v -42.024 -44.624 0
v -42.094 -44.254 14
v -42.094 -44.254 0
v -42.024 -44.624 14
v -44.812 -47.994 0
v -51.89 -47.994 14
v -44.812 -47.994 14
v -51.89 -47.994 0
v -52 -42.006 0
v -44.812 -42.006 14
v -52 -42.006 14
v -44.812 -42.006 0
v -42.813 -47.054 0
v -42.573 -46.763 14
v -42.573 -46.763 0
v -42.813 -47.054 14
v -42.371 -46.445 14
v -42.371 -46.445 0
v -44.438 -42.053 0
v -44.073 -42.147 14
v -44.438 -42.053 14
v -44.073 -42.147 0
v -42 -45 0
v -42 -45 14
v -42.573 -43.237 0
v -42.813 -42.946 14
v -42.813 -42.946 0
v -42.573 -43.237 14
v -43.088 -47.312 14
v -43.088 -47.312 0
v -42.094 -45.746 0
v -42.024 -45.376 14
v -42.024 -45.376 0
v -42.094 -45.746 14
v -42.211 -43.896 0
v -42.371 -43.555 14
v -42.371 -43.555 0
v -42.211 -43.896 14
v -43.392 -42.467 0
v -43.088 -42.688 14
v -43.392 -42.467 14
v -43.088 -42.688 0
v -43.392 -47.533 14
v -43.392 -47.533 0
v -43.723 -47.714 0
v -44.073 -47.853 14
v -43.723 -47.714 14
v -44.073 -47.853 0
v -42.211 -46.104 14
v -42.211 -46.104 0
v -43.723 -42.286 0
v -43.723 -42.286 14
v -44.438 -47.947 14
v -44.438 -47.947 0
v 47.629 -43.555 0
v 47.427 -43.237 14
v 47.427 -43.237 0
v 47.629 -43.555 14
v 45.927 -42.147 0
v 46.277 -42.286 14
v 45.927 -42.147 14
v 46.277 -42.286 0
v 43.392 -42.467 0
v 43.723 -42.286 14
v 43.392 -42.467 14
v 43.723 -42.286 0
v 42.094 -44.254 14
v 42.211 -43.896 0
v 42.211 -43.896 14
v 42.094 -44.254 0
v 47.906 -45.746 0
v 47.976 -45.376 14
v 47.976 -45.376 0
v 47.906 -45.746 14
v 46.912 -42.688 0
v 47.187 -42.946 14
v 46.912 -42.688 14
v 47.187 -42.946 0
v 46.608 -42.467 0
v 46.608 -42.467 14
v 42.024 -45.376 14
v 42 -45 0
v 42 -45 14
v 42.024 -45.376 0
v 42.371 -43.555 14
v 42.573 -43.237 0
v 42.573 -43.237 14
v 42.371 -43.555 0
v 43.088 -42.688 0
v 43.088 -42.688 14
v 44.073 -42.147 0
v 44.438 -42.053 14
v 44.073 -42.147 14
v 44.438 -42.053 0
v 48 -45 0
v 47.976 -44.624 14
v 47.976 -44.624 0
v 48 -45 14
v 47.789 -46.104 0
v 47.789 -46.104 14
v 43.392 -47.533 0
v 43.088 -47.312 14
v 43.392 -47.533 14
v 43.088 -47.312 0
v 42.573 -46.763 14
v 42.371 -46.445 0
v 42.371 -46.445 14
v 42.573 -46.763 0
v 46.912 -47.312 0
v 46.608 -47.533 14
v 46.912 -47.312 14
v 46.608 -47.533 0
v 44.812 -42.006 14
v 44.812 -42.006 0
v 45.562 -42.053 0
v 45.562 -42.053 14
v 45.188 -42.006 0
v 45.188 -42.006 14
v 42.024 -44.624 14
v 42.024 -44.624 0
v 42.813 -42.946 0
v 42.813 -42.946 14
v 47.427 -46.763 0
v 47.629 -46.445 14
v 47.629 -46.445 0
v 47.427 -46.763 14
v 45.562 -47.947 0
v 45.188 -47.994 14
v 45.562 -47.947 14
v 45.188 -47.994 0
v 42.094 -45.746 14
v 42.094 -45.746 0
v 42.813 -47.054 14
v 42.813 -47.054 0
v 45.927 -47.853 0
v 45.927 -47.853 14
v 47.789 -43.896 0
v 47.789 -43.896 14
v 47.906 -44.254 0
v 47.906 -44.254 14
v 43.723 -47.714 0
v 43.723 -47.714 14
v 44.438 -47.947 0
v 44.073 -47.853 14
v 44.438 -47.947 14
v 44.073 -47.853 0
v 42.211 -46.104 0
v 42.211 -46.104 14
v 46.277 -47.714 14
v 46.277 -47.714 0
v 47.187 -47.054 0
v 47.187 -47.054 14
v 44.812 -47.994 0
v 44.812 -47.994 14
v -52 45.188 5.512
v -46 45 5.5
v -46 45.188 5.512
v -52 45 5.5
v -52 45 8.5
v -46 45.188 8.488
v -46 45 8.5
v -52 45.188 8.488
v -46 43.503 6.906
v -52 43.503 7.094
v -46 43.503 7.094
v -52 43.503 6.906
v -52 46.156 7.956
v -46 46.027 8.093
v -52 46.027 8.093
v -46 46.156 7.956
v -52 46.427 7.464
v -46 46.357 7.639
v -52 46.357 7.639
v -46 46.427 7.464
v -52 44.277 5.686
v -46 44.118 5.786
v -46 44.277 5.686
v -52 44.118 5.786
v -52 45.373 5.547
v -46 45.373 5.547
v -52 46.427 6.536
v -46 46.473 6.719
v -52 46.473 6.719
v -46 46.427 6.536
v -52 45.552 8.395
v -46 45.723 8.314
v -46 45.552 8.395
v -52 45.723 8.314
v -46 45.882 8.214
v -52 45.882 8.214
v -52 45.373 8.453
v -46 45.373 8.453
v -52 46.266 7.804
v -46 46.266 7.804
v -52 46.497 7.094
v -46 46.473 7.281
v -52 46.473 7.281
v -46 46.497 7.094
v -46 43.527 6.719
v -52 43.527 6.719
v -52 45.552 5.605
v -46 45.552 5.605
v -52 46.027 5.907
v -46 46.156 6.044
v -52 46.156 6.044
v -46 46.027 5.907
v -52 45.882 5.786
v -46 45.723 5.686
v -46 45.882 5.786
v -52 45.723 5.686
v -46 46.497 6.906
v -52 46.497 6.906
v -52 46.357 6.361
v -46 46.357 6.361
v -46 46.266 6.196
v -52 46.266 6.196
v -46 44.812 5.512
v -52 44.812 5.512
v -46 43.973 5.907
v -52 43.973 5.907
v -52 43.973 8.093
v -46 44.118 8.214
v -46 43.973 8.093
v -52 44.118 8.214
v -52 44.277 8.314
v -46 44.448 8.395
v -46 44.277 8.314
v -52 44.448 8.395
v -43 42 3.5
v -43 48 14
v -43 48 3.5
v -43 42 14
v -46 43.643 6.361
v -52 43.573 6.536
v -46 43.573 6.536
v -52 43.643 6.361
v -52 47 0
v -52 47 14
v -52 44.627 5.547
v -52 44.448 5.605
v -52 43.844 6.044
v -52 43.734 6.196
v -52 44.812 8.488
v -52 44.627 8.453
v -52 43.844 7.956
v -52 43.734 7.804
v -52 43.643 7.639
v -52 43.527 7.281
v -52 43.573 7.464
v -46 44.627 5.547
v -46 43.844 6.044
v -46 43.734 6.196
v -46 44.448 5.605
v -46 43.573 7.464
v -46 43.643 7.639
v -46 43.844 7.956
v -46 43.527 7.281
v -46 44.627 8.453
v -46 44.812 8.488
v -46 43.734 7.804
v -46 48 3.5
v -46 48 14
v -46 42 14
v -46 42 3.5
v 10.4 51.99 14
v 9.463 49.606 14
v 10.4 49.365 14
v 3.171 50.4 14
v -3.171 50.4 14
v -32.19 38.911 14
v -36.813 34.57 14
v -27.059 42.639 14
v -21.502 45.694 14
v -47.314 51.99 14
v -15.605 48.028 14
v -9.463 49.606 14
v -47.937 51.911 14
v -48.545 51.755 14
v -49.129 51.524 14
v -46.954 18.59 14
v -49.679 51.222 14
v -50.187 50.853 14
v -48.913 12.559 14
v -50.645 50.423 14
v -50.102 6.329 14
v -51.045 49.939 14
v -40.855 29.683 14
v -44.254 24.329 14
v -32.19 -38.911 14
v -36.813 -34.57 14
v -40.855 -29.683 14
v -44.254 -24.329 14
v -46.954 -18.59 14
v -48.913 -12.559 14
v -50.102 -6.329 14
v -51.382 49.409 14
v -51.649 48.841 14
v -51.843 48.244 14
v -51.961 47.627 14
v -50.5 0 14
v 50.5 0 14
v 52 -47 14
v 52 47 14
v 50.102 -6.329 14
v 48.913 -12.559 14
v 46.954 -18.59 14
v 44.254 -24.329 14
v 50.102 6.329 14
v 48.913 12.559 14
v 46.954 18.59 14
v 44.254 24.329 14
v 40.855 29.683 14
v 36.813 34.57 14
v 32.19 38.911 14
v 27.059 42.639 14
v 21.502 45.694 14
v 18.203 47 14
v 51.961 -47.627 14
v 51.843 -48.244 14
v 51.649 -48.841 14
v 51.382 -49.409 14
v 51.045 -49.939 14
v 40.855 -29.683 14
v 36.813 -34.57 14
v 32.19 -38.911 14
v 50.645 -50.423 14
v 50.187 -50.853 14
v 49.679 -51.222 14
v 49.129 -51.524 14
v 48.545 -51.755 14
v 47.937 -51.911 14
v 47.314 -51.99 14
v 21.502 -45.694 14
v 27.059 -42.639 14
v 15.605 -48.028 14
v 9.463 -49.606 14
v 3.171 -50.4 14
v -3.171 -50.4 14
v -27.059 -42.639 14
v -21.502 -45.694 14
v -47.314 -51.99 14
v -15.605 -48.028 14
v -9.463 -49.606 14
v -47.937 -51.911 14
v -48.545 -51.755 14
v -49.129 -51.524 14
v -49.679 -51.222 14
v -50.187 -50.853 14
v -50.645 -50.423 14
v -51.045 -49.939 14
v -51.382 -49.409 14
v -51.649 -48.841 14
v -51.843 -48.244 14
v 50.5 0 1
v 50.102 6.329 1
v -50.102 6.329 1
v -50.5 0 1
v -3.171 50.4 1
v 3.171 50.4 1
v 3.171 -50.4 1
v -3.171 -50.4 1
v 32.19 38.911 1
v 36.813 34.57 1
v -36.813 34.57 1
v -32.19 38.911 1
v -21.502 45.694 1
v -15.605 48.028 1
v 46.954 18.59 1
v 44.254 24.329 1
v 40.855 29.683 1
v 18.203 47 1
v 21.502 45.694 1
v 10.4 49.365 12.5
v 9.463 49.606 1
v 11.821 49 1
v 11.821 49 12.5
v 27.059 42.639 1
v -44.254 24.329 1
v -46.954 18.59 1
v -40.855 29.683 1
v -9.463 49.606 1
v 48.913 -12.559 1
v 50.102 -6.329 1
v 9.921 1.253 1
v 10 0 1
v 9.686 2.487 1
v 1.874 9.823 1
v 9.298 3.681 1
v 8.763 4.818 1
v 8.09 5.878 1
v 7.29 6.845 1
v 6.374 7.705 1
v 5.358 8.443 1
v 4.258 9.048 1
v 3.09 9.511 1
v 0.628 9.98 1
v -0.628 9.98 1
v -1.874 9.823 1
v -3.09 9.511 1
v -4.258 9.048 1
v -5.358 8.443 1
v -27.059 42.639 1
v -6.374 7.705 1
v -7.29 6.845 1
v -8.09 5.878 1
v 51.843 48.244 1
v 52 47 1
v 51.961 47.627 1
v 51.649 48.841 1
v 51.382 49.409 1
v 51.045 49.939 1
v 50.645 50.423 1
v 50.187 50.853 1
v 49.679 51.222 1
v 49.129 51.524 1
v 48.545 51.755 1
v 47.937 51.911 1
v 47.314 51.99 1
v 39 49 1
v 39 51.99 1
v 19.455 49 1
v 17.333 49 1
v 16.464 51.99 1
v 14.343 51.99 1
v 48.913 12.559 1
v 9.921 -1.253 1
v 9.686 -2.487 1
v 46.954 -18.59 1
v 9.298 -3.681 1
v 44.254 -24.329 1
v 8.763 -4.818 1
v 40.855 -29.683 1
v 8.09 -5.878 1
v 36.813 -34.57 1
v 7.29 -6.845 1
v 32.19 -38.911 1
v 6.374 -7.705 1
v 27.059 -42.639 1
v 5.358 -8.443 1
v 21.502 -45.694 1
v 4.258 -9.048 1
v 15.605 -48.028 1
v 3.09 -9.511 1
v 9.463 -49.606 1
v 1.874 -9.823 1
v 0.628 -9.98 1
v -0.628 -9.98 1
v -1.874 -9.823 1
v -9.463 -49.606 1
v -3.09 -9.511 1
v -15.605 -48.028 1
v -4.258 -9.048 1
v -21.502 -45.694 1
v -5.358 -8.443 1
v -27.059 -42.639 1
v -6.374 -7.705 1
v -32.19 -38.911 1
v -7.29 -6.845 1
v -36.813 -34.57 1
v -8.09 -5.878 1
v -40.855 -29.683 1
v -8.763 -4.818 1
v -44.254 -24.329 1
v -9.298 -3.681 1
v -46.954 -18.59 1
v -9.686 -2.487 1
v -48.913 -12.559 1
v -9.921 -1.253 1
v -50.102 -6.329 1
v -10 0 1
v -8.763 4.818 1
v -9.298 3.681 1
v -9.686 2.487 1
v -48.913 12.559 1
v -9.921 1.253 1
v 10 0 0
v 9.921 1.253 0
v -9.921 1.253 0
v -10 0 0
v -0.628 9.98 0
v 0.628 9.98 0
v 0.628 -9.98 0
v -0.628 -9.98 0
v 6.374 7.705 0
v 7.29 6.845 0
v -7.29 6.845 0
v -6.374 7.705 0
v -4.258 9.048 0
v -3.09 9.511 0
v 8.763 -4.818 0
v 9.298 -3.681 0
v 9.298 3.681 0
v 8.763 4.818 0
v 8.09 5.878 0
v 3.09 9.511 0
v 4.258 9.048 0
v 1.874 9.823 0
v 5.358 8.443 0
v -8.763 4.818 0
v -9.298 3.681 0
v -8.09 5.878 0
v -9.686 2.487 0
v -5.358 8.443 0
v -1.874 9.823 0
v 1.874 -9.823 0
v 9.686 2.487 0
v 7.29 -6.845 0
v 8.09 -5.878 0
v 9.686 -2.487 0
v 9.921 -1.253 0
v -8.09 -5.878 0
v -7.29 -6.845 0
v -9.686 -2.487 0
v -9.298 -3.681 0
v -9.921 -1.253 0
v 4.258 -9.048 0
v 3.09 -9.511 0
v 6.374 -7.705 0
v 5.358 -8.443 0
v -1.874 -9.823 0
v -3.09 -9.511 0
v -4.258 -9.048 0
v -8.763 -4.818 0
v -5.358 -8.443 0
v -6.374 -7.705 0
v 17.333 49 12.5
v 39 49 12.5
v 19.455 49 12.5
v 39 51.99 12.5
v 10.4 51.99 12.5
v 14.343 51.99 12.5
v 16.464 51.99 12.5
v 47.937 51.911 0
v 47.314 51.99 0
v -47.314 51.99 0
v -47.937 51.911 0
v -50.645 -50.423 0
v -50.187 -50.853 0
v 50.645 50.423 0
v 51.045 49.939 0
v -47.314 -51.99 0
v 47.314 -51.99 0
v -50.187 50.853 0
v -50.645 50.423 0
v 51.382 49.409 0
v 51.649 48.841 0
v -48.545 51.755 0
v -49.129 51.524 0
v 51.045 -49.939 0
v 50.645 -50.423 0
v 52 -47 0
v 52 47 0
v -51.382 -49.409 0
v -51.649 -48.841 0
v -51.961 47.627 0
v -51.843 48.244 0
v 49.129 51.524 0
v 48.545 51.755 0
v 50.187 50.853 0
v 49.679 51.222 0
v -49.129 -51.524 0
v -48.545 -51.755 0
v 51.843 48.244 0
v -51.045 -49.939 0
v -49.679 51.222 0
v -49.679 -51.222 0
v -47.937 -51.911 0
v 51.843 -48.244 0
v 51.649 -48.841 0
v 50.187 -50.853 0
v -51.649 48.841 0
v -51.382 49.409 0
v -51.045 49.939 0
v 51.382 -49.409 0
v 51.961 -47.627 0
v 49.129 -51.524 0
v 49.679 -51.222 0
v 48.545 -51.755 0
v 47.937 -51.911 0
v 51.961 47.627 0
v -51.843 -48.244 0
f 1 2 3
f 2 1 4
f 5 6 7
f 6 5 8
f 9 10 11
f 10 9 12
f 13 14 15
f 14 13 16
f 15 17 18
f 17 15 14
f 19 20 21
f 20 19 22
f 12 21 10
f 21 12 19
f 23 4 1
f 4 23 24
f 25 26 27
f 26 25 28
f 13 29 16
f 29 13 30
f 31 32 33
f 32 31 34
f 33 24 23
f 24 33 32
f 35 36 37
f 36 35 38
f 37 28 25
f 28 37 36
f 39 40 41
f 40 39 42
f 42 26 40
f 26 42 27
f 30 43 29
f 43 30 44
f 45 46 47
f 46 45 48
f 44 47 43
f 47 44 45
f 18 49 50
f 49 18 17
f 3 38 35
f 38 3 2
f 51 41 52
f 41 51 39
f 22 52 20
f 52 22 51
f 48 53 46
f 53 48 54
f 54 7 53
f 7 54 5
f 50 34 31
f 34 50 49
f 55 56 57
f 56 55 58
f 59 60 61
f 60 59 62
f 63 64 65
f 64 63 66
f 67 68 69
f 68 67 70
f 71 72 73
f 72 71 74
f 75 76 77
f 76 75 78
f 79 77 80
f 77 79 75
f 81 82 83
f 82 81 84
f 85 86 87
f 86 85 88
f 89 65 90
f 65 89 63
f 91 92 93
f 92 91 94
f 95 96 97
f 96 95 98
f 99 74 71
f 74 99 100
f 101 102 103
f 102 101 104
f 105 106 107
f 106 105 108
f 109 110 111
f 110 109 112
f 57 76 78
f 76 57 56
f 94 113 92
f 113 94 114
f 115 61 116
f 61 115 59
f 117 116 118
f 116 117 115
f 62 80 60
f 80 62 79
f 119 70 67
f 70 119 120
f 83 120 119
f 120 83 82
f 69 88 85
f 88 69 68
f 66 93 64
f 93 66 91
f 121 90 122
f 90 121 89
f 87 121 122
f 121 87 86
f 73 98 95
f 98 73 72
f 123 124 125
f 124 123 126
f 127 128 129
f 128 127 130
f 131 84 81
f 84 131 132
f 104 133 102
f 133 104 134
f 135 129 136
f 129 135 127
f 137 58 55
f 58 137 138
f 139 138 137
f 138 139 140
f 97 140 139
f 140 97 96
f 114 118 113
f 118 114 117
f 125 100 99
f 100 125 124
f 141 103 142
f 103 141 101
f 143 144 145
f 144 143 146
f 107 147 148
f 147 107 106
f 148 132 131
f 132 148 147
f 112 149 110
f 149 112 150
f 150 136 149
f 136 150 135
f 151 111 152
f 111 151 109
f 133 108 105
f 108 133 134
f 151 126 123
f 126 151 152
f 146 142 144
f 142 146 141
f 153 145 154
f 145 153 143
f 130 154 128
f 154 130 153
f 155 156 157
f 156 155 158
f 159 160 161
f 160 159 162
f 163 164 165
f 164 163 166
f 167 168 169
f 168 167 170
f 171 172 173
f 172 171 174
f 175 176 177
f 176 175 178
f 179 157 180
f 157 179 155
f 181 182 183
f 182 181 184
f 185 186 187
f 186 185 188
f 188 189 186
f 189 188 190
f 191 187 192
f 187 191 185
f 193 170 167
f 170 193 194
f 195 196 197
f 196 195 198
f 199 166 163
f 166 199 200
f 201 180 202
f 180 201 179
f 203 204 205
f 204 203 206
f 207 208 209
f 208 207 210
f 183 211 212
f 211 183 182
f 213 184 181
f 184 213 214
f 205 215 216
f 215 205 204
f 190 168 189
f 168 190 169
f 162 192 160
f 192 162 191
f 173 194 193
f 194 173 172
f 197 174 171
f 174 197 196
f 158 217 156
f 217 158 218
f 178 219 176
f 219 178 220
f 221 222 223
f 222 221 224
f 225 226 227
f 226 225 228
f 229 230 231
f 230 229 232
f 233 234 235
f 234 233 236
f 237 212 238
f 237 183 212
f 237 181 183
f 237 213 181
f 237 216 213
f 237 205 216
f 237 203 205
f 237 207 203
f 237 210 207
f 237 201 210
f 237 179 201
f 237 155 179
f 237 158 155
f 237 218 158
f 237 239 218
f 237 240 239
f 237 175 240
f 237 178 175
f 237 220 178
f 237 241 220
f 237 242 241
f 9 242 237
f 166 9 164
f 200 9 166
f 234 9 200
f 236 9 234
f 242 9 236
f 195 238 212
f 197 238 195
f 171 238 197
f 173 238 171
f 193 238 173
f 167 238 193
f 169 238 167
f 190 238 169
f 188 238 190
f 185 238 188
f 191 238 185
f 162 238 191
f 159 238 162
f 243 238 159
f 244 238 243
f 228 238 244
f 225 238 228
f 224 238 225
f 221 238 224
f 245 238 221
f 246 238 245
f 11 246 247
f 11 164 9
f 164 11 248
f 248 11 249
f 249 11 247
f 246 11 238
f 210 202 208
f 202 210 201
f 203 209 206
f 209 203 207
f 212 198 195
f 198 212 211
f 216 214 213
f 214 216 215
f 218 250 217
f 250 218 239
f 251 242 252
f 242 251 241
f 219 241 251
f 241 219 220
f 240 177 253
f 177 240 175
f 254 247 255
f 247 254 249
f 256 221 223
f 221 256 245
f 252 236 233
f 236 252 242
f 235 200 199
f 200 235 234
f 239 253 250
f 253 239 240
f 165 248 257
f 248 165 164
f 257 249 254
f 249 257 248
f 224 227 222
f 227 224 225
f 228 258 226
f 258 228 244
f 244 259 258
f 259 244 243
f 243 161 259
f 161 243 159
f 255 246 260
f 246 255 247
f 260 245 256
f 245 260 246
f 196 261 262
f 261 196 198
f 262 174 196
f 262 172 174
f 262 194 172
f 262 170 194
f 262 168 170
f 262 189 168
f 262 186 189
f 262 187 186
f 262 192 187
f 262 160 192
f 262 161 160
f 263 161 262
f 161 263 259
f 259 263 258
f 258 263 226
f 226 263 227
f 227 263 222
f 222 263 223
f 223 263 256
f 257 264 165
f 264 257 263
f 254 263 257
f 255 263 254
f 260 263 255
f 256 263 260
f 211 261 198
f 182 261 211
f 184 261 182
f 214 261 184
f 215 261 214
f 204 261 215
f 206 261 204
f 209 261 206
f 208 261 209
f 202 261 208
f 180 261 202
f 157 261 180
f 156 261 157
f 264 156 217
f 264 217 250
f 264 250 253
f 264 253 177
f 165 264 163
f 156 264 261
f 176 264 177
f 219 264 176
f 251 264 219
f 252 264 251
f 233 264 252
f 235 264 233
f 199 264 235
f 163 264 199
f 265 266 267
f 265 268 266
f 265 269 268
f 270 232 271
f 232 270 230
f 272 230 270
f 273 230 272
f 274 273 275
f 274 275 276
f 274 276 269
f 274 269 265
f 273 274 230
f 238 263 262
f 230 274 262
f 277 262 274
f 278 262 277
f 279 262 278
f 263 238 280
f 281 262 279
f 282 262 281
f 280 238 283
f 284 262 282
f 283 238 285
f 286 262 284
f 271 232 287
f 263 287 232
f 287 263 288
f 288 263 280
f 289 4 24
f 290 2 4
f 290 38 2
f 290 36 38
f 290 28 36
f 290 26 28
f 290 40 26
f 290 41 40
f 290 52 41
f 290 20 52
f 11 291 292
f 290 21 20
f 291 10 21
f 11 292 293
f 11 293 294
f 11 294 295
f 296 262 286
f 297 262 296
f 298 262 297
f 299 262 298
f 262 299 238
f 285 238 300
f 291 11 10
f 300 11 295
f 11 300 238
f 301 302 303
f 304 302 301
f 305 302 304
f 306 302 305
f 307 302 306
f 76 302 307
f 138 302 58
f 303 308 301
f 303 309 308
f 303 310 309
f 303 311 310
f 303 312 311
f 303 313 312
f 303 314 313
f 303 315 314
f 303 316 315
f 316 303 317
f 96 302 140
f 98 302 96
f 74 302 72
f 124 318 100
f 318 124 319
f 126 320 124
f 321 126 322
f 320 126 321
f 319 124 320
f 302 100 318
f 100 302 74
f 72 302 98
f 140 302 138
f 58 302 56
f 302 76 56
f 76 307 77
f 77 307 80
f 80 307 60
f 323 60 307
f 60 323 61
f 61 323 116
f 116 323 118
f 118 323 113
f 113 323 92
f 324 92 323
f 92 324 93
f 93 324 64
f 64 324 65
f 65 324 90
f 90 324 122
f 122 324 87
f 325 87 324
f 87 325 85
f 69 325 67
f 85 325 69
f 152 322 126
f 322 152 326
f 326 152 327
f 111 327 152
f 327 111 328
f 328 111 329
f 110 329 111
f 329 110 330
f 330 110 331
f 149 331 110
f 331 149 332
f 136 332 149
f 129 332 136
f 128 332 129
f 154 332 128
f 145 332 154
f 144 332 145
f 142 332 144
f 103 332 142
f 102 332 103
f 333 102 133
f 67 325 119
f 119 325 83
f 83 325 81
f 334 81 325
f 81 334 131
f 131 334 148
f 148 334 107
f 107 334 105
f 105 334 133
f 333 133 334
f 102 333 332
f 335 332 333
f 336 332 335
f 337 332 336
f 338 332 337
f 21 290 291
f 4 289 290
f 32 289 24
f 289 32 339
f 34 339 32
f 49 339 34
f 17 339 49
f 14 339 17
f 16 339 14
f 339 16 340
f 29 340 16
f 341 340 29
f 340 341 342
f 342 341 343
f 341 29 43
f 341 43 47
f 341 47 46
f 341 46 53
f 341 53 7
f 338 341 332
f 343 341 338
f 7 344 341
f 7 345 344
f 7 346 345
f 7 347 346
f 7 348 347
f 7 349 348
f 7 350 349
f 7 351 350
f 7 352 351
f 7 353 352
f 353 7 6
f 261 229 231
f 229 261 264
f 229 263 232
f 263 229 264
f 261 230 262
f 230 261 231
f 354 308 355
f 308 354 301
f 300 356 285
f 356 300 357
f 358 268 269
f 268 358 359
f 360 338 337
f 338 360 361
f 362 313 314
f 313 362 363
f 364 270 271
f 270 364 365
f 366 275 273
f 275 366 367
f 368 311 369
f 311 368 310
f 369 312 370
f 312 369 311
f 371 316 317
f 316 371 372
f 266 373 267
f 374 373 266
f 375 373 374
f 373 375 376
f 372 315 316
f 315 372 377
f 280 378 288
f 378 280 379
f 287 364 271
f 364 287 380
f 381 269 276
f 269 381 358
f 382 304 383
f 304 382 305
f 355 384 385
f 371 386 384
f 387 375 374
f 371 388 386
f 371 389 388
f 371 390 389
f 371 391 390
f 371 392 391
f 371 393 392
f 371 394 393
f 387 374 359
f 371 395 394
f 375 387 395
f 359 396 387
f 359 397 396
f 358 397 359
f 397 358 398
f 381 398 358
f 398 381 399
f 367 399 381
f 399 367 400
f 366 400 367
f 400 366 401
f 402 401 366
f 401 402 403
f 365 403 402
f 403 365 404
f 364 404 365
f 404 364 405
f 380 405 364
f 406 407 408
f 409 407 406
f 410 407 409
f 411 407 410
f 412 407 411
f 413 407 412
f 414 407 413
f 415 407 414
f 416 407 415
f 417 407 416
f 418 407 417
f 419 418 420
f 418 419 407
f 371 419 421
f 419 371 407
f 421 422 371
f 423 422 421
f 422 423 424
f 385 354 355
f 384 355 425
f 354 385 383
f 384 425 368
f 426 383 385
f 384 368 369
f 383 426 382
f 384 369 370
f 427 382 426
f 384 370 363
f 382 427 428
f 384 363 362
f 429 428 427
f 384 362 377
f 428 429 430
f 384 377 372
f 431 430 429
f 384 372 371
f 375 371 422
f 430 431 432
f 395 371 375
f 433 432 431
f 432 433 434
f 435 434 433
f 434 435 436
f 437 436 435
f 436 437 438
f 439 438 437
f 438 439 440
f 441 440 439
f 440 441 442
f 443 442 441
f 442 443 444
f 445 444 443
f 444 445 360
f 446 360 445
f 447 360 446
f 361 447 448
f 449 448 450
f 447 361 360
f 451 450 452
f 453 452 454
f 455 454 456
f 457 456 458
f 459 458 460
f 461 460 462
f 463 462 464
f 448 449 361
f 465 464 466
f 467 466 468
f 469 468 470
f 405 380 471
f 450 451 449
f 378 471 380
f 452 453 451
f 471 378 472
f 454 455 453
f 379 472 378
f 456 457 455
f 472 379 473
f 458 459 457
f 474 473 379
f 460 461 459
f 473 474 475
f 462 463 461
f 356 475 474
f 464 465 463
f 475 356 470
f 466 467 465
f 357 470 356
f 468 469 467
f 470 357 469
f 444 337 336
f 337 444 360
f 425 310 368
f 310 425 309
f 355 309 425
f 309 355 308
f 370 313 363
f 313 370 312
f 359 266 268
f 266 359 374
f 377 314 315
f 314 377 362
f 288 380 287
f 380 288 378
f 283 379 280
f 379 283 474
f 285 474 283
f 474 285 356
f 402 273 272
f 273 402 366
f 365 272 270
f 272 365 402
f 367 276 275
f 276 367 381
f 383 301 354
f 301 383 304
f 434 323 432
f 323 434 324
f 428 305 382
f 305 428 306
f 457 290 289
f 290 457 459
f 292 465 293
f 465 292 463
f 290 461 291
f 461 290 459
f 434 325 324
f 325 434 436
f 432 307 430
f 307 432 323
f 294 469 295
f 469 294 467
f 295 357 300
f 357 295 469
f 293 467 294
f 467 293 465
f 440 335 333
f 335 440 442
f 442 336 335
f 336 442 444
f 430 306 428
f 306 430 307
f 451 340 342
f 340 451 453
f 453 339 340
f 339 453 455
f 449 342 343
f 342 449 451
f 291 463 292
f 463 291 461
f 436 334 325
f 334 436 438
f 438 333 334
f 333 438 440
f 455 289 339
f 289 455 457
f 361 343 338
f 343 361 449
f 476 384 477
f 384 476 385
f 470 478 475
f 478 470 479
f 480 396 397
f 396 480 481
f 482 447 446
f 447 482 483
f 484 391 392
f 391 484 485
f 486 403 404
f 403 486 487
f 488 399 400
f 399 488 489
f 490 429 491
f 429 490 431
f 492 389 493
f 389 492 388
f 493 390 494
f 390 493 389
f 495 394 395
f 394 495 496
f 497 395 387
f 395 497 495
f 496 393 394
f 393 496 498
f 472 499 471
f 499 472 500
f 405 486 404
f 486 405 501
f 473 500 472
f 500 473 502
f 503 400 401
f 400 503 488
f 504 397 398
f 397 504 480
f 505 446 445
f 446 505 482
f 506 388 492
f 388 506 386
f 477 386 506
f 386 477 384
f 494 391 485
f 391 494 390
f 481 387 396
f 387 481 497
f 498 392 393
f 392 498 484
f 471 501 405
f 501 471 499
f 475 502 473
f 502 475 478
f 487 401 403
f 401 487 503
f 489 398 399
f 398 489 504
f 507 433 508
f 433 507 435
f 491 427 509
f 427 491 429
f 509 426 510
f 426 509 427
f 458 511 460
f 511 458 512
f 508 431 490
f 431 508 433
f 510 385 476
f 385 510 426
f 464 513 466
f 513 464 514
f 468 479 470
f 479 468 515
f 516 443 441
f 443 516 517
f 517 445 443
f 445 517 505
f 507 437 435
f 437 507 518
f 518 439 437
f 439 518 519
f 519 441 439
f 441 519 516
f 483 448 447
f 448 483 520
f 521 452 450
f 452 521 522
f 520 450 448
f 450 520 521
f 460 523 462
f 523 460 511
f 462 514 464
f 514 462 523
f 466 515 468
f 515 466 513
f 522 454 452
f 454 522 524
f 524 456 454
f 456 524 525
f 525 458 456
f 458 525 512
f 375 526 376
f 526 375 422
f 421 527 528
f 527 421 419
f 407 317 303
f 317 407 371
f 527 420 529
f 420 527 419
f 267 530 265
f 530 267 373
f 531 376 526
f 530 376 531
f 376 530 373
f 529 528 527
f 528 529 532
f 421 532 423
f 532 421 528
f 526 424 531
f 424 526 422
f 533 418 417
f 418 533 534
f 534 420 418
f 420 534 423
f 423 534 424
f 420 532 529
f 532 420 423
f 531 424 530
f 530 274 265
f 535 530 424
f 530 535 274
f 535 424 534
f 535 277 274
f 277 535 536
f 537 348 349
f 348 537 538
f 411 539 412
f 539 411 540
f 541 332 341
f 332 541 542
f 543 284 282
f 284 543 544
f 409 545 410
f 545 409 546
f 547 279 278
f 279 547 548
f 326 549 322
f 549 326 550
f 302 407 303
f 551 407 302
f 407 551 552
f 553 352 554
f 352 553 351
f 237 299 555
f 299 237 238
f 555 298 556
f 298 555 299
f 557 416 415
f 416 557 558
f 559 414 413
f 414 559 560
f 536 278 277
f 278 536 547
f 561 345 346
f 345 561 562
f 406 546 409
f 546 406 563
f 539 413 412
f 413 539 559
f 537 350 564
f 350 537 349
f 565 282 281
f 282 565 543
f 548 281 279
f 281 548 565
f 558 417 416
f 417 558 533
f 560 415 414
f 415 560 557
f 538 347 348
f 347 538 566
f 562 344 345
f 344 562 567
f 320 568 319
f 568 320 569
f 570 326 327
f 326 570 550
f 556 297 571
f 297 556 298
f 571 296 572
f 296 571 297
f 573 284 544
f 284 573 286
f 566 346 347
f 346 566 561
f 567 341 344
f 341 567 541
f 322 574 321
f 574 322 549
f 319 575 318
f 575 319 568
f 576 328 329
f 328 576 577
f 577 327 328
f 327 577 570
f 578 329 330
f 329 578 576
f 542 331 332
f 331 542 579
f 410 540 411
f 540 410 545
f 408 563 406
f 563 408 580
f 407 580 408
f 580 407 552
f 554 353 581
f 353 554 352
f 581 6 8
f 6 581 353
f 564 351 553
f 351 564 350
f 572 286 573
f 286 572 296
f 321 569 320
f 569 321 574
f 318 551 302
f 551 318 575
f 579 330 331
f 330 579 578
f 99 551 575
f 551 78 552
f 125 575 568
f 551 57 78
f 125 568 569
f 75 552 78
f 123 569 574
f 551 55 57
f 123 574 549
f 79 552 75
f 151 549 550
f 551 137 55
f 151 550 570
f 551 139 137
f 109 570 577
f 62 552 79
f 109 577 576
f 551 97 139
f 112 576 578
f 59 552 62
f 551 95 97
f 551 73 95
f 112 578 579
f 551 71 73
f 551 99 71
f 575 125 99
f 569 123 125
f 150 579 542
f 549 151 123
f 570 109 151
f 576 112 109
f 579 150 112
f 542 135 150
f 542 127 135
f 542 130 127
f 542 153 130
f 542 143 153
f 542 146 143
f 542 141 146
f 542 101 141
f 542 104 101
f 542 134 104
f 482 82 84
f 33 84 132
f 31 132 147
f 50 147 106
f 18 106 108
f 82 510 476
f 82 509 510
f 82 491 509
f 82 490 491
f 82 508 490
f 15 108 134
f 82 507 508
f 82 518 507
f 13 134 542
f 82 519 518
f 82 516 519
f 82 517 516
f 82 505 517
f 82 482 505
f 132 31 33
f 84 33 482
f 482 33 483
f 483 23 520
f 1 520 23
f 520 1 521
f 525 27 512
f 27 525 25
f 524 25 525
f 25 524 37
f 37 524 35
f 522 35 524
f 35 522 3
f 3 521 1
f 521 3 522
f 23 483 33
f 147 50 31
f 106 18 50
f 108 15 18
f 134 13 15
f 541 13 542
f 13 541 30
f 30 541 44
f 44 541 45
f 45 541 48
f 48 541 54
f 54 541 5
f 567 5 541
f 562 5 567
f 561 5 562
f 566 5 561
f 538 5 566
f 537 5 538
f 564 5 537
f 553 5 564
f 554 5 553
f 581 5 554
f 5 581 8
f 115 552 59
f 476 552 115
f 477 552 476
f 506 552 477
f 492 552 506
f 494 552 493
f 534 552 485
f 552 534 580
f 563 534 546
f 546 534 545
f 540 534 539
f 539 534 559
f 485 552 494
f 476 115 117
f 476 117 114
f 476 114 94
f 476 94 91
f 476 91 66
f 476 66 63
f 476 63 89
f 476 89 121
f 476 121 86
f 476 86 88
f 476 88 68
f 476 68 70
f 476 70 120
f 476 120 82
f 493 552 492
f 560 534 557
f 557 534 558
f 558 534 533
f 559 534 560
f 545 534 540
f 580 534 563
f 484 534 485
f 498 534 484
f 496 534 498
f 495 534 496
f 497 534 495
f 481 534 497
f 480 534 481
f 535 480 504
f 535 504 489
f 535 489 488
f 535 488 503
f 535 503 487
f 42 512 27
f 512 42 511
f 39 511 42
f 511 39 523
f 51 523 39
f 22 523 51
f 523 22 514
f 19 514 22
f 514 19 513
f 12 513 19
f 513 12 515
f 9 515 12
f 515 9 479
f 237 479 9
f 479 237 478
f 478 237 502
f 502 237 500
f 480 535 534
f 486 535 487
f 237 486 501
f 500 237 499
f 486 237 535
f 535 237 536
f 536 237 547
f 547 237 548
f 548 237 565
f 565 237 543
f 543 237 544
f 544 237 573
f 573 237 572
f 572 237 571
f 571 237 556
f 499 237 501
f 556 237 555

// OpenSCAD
$fn = 50;


difference() {
	union() {
		translate(v = [0, 0, 0]) {
			rotate(a = [0, 0, 0]) {
				hull() {
					translate(v = [-47.0000000000, 47.0000000000, 0]) {
						rotate(a = [0, 0, 0]) {
							translate(v = [0, 0, 0]) {
								rotate(a = [0, 0, 0]) {
									cylinder(h = 14, r = 5);
								}
							}
						}
					}
					translate(v = [47.0000000000, 47.0000000000, 0]) {
						rotate(a = [0, 0, 0]) {
							translate(v = [0, 0, 0]) {
								rotate(a = [0, 0, 0]) {
									cylinder(h = 14, r = 5);
								}
							}
						}
					}
					translate(v = [-47.0000000000, -47.0000000000, 0]) {
						rotate(a = [0, 0, 0]) {
							translate(v = [0, 0, 0]) {
								rotate(a = [0, 0, 0]) {
									cylinder(h = 14, r = 5);
								}
							}
						}
					}
					translate(v = [47.0000000000, -47.0000000000, 0]) {
						rotate(a = [0, 0, 0]) {
							translate(v = [0, 0, 0]) {
								rotate(a = [0, 0, 0]) {
									cylinder(h = 14, r = 5);
								}
							}
						}
					}
				}
			}
		}
	}
	union() {
		translate(v = [-52.5000000000, -45.0000000000, -125]) {
			rotate(a = [0, 0, 0]) {
				hull() {
					translate(v = [7.5000000000, 0, 0]) {
						rotate(a = [0, 0, 0]) {
							translate(v = [0, 0, 0]) {
								rotate(a = [0, 0, 0]) {
									cylinder(h = 250, r = 3.0000000000);
								}
							}
						}
					}
					translate(v = [-7.5000000000, 0, 0]) {
						rotate(a = [0, 0, 0]) {
							translate(v = [0, 0, 0]) {
								rotate(a = [0, 0, 0]) {
									cylinder(h = 250, r = 3.0000000000);
								}
							}
						}
					}
				}
			}
		}
		translate(v = [45.0000000000, -45.0000000000, -125.0000000000]) {
			rotate(a = [0, 0, 0]) {
				cylinder(h = 250, r = 3.0000000000);
			}
		}
		translate(v = [-52.0000000000, 45.0000000000, 7.0000000000]) {
			rotate(a = [0, 90, 0]) {
				cylinder(h = 9, r = 1.5000000000);
			}
		}
		translate(v = [-46.0000000000, 42.0000000000, 3.5000000000]) {
			rotate(a = [0, 0, 0]) {
				cube(size = [3, 6, 10.5000000000]);
			}
		}
		translate(v = [0, 0, 1.0000000000]) {
			rotate(a = [0, 0, 0]) {
				cylinder(h = 16, r = 50.5000000000);
			}
		}
		translate(v = [0, 0, -7.0000000000]) {
			rotate(a = [0, 0, 0]) {
				cylinder(h = 14, r = 10.0000000000);
			}
		}
		translate(v = [0.0000000000, 47.0000000000, 1]) {
			rotate(a = [0, 0, 0]) {
				cube(size = [52.0000000000, 2, 16]);
			}
		}
		translate(v = [39.0000000000, 47.0000000000, 1]) {
			rotate(a = [0, 0, 0]) {
				cube(size = [13.0000000000, 5, 16]);
			}
		}
		translate(v = [10.4000000000, 47.0000000000, 12.5000000000]) {
			rotate(a = [0, 0, 0]) {
				cube(size = [41.6000000000, 5, 1.5000000000]);
			}
		}
		translate(v = [13.5833333333, 52.7500000000, 1]) {
			rotate(a = [0, 0, -45]) {
				cube(size = [7.5000000000, 1.5000000000, 16]);
			}
		}
	}
}
